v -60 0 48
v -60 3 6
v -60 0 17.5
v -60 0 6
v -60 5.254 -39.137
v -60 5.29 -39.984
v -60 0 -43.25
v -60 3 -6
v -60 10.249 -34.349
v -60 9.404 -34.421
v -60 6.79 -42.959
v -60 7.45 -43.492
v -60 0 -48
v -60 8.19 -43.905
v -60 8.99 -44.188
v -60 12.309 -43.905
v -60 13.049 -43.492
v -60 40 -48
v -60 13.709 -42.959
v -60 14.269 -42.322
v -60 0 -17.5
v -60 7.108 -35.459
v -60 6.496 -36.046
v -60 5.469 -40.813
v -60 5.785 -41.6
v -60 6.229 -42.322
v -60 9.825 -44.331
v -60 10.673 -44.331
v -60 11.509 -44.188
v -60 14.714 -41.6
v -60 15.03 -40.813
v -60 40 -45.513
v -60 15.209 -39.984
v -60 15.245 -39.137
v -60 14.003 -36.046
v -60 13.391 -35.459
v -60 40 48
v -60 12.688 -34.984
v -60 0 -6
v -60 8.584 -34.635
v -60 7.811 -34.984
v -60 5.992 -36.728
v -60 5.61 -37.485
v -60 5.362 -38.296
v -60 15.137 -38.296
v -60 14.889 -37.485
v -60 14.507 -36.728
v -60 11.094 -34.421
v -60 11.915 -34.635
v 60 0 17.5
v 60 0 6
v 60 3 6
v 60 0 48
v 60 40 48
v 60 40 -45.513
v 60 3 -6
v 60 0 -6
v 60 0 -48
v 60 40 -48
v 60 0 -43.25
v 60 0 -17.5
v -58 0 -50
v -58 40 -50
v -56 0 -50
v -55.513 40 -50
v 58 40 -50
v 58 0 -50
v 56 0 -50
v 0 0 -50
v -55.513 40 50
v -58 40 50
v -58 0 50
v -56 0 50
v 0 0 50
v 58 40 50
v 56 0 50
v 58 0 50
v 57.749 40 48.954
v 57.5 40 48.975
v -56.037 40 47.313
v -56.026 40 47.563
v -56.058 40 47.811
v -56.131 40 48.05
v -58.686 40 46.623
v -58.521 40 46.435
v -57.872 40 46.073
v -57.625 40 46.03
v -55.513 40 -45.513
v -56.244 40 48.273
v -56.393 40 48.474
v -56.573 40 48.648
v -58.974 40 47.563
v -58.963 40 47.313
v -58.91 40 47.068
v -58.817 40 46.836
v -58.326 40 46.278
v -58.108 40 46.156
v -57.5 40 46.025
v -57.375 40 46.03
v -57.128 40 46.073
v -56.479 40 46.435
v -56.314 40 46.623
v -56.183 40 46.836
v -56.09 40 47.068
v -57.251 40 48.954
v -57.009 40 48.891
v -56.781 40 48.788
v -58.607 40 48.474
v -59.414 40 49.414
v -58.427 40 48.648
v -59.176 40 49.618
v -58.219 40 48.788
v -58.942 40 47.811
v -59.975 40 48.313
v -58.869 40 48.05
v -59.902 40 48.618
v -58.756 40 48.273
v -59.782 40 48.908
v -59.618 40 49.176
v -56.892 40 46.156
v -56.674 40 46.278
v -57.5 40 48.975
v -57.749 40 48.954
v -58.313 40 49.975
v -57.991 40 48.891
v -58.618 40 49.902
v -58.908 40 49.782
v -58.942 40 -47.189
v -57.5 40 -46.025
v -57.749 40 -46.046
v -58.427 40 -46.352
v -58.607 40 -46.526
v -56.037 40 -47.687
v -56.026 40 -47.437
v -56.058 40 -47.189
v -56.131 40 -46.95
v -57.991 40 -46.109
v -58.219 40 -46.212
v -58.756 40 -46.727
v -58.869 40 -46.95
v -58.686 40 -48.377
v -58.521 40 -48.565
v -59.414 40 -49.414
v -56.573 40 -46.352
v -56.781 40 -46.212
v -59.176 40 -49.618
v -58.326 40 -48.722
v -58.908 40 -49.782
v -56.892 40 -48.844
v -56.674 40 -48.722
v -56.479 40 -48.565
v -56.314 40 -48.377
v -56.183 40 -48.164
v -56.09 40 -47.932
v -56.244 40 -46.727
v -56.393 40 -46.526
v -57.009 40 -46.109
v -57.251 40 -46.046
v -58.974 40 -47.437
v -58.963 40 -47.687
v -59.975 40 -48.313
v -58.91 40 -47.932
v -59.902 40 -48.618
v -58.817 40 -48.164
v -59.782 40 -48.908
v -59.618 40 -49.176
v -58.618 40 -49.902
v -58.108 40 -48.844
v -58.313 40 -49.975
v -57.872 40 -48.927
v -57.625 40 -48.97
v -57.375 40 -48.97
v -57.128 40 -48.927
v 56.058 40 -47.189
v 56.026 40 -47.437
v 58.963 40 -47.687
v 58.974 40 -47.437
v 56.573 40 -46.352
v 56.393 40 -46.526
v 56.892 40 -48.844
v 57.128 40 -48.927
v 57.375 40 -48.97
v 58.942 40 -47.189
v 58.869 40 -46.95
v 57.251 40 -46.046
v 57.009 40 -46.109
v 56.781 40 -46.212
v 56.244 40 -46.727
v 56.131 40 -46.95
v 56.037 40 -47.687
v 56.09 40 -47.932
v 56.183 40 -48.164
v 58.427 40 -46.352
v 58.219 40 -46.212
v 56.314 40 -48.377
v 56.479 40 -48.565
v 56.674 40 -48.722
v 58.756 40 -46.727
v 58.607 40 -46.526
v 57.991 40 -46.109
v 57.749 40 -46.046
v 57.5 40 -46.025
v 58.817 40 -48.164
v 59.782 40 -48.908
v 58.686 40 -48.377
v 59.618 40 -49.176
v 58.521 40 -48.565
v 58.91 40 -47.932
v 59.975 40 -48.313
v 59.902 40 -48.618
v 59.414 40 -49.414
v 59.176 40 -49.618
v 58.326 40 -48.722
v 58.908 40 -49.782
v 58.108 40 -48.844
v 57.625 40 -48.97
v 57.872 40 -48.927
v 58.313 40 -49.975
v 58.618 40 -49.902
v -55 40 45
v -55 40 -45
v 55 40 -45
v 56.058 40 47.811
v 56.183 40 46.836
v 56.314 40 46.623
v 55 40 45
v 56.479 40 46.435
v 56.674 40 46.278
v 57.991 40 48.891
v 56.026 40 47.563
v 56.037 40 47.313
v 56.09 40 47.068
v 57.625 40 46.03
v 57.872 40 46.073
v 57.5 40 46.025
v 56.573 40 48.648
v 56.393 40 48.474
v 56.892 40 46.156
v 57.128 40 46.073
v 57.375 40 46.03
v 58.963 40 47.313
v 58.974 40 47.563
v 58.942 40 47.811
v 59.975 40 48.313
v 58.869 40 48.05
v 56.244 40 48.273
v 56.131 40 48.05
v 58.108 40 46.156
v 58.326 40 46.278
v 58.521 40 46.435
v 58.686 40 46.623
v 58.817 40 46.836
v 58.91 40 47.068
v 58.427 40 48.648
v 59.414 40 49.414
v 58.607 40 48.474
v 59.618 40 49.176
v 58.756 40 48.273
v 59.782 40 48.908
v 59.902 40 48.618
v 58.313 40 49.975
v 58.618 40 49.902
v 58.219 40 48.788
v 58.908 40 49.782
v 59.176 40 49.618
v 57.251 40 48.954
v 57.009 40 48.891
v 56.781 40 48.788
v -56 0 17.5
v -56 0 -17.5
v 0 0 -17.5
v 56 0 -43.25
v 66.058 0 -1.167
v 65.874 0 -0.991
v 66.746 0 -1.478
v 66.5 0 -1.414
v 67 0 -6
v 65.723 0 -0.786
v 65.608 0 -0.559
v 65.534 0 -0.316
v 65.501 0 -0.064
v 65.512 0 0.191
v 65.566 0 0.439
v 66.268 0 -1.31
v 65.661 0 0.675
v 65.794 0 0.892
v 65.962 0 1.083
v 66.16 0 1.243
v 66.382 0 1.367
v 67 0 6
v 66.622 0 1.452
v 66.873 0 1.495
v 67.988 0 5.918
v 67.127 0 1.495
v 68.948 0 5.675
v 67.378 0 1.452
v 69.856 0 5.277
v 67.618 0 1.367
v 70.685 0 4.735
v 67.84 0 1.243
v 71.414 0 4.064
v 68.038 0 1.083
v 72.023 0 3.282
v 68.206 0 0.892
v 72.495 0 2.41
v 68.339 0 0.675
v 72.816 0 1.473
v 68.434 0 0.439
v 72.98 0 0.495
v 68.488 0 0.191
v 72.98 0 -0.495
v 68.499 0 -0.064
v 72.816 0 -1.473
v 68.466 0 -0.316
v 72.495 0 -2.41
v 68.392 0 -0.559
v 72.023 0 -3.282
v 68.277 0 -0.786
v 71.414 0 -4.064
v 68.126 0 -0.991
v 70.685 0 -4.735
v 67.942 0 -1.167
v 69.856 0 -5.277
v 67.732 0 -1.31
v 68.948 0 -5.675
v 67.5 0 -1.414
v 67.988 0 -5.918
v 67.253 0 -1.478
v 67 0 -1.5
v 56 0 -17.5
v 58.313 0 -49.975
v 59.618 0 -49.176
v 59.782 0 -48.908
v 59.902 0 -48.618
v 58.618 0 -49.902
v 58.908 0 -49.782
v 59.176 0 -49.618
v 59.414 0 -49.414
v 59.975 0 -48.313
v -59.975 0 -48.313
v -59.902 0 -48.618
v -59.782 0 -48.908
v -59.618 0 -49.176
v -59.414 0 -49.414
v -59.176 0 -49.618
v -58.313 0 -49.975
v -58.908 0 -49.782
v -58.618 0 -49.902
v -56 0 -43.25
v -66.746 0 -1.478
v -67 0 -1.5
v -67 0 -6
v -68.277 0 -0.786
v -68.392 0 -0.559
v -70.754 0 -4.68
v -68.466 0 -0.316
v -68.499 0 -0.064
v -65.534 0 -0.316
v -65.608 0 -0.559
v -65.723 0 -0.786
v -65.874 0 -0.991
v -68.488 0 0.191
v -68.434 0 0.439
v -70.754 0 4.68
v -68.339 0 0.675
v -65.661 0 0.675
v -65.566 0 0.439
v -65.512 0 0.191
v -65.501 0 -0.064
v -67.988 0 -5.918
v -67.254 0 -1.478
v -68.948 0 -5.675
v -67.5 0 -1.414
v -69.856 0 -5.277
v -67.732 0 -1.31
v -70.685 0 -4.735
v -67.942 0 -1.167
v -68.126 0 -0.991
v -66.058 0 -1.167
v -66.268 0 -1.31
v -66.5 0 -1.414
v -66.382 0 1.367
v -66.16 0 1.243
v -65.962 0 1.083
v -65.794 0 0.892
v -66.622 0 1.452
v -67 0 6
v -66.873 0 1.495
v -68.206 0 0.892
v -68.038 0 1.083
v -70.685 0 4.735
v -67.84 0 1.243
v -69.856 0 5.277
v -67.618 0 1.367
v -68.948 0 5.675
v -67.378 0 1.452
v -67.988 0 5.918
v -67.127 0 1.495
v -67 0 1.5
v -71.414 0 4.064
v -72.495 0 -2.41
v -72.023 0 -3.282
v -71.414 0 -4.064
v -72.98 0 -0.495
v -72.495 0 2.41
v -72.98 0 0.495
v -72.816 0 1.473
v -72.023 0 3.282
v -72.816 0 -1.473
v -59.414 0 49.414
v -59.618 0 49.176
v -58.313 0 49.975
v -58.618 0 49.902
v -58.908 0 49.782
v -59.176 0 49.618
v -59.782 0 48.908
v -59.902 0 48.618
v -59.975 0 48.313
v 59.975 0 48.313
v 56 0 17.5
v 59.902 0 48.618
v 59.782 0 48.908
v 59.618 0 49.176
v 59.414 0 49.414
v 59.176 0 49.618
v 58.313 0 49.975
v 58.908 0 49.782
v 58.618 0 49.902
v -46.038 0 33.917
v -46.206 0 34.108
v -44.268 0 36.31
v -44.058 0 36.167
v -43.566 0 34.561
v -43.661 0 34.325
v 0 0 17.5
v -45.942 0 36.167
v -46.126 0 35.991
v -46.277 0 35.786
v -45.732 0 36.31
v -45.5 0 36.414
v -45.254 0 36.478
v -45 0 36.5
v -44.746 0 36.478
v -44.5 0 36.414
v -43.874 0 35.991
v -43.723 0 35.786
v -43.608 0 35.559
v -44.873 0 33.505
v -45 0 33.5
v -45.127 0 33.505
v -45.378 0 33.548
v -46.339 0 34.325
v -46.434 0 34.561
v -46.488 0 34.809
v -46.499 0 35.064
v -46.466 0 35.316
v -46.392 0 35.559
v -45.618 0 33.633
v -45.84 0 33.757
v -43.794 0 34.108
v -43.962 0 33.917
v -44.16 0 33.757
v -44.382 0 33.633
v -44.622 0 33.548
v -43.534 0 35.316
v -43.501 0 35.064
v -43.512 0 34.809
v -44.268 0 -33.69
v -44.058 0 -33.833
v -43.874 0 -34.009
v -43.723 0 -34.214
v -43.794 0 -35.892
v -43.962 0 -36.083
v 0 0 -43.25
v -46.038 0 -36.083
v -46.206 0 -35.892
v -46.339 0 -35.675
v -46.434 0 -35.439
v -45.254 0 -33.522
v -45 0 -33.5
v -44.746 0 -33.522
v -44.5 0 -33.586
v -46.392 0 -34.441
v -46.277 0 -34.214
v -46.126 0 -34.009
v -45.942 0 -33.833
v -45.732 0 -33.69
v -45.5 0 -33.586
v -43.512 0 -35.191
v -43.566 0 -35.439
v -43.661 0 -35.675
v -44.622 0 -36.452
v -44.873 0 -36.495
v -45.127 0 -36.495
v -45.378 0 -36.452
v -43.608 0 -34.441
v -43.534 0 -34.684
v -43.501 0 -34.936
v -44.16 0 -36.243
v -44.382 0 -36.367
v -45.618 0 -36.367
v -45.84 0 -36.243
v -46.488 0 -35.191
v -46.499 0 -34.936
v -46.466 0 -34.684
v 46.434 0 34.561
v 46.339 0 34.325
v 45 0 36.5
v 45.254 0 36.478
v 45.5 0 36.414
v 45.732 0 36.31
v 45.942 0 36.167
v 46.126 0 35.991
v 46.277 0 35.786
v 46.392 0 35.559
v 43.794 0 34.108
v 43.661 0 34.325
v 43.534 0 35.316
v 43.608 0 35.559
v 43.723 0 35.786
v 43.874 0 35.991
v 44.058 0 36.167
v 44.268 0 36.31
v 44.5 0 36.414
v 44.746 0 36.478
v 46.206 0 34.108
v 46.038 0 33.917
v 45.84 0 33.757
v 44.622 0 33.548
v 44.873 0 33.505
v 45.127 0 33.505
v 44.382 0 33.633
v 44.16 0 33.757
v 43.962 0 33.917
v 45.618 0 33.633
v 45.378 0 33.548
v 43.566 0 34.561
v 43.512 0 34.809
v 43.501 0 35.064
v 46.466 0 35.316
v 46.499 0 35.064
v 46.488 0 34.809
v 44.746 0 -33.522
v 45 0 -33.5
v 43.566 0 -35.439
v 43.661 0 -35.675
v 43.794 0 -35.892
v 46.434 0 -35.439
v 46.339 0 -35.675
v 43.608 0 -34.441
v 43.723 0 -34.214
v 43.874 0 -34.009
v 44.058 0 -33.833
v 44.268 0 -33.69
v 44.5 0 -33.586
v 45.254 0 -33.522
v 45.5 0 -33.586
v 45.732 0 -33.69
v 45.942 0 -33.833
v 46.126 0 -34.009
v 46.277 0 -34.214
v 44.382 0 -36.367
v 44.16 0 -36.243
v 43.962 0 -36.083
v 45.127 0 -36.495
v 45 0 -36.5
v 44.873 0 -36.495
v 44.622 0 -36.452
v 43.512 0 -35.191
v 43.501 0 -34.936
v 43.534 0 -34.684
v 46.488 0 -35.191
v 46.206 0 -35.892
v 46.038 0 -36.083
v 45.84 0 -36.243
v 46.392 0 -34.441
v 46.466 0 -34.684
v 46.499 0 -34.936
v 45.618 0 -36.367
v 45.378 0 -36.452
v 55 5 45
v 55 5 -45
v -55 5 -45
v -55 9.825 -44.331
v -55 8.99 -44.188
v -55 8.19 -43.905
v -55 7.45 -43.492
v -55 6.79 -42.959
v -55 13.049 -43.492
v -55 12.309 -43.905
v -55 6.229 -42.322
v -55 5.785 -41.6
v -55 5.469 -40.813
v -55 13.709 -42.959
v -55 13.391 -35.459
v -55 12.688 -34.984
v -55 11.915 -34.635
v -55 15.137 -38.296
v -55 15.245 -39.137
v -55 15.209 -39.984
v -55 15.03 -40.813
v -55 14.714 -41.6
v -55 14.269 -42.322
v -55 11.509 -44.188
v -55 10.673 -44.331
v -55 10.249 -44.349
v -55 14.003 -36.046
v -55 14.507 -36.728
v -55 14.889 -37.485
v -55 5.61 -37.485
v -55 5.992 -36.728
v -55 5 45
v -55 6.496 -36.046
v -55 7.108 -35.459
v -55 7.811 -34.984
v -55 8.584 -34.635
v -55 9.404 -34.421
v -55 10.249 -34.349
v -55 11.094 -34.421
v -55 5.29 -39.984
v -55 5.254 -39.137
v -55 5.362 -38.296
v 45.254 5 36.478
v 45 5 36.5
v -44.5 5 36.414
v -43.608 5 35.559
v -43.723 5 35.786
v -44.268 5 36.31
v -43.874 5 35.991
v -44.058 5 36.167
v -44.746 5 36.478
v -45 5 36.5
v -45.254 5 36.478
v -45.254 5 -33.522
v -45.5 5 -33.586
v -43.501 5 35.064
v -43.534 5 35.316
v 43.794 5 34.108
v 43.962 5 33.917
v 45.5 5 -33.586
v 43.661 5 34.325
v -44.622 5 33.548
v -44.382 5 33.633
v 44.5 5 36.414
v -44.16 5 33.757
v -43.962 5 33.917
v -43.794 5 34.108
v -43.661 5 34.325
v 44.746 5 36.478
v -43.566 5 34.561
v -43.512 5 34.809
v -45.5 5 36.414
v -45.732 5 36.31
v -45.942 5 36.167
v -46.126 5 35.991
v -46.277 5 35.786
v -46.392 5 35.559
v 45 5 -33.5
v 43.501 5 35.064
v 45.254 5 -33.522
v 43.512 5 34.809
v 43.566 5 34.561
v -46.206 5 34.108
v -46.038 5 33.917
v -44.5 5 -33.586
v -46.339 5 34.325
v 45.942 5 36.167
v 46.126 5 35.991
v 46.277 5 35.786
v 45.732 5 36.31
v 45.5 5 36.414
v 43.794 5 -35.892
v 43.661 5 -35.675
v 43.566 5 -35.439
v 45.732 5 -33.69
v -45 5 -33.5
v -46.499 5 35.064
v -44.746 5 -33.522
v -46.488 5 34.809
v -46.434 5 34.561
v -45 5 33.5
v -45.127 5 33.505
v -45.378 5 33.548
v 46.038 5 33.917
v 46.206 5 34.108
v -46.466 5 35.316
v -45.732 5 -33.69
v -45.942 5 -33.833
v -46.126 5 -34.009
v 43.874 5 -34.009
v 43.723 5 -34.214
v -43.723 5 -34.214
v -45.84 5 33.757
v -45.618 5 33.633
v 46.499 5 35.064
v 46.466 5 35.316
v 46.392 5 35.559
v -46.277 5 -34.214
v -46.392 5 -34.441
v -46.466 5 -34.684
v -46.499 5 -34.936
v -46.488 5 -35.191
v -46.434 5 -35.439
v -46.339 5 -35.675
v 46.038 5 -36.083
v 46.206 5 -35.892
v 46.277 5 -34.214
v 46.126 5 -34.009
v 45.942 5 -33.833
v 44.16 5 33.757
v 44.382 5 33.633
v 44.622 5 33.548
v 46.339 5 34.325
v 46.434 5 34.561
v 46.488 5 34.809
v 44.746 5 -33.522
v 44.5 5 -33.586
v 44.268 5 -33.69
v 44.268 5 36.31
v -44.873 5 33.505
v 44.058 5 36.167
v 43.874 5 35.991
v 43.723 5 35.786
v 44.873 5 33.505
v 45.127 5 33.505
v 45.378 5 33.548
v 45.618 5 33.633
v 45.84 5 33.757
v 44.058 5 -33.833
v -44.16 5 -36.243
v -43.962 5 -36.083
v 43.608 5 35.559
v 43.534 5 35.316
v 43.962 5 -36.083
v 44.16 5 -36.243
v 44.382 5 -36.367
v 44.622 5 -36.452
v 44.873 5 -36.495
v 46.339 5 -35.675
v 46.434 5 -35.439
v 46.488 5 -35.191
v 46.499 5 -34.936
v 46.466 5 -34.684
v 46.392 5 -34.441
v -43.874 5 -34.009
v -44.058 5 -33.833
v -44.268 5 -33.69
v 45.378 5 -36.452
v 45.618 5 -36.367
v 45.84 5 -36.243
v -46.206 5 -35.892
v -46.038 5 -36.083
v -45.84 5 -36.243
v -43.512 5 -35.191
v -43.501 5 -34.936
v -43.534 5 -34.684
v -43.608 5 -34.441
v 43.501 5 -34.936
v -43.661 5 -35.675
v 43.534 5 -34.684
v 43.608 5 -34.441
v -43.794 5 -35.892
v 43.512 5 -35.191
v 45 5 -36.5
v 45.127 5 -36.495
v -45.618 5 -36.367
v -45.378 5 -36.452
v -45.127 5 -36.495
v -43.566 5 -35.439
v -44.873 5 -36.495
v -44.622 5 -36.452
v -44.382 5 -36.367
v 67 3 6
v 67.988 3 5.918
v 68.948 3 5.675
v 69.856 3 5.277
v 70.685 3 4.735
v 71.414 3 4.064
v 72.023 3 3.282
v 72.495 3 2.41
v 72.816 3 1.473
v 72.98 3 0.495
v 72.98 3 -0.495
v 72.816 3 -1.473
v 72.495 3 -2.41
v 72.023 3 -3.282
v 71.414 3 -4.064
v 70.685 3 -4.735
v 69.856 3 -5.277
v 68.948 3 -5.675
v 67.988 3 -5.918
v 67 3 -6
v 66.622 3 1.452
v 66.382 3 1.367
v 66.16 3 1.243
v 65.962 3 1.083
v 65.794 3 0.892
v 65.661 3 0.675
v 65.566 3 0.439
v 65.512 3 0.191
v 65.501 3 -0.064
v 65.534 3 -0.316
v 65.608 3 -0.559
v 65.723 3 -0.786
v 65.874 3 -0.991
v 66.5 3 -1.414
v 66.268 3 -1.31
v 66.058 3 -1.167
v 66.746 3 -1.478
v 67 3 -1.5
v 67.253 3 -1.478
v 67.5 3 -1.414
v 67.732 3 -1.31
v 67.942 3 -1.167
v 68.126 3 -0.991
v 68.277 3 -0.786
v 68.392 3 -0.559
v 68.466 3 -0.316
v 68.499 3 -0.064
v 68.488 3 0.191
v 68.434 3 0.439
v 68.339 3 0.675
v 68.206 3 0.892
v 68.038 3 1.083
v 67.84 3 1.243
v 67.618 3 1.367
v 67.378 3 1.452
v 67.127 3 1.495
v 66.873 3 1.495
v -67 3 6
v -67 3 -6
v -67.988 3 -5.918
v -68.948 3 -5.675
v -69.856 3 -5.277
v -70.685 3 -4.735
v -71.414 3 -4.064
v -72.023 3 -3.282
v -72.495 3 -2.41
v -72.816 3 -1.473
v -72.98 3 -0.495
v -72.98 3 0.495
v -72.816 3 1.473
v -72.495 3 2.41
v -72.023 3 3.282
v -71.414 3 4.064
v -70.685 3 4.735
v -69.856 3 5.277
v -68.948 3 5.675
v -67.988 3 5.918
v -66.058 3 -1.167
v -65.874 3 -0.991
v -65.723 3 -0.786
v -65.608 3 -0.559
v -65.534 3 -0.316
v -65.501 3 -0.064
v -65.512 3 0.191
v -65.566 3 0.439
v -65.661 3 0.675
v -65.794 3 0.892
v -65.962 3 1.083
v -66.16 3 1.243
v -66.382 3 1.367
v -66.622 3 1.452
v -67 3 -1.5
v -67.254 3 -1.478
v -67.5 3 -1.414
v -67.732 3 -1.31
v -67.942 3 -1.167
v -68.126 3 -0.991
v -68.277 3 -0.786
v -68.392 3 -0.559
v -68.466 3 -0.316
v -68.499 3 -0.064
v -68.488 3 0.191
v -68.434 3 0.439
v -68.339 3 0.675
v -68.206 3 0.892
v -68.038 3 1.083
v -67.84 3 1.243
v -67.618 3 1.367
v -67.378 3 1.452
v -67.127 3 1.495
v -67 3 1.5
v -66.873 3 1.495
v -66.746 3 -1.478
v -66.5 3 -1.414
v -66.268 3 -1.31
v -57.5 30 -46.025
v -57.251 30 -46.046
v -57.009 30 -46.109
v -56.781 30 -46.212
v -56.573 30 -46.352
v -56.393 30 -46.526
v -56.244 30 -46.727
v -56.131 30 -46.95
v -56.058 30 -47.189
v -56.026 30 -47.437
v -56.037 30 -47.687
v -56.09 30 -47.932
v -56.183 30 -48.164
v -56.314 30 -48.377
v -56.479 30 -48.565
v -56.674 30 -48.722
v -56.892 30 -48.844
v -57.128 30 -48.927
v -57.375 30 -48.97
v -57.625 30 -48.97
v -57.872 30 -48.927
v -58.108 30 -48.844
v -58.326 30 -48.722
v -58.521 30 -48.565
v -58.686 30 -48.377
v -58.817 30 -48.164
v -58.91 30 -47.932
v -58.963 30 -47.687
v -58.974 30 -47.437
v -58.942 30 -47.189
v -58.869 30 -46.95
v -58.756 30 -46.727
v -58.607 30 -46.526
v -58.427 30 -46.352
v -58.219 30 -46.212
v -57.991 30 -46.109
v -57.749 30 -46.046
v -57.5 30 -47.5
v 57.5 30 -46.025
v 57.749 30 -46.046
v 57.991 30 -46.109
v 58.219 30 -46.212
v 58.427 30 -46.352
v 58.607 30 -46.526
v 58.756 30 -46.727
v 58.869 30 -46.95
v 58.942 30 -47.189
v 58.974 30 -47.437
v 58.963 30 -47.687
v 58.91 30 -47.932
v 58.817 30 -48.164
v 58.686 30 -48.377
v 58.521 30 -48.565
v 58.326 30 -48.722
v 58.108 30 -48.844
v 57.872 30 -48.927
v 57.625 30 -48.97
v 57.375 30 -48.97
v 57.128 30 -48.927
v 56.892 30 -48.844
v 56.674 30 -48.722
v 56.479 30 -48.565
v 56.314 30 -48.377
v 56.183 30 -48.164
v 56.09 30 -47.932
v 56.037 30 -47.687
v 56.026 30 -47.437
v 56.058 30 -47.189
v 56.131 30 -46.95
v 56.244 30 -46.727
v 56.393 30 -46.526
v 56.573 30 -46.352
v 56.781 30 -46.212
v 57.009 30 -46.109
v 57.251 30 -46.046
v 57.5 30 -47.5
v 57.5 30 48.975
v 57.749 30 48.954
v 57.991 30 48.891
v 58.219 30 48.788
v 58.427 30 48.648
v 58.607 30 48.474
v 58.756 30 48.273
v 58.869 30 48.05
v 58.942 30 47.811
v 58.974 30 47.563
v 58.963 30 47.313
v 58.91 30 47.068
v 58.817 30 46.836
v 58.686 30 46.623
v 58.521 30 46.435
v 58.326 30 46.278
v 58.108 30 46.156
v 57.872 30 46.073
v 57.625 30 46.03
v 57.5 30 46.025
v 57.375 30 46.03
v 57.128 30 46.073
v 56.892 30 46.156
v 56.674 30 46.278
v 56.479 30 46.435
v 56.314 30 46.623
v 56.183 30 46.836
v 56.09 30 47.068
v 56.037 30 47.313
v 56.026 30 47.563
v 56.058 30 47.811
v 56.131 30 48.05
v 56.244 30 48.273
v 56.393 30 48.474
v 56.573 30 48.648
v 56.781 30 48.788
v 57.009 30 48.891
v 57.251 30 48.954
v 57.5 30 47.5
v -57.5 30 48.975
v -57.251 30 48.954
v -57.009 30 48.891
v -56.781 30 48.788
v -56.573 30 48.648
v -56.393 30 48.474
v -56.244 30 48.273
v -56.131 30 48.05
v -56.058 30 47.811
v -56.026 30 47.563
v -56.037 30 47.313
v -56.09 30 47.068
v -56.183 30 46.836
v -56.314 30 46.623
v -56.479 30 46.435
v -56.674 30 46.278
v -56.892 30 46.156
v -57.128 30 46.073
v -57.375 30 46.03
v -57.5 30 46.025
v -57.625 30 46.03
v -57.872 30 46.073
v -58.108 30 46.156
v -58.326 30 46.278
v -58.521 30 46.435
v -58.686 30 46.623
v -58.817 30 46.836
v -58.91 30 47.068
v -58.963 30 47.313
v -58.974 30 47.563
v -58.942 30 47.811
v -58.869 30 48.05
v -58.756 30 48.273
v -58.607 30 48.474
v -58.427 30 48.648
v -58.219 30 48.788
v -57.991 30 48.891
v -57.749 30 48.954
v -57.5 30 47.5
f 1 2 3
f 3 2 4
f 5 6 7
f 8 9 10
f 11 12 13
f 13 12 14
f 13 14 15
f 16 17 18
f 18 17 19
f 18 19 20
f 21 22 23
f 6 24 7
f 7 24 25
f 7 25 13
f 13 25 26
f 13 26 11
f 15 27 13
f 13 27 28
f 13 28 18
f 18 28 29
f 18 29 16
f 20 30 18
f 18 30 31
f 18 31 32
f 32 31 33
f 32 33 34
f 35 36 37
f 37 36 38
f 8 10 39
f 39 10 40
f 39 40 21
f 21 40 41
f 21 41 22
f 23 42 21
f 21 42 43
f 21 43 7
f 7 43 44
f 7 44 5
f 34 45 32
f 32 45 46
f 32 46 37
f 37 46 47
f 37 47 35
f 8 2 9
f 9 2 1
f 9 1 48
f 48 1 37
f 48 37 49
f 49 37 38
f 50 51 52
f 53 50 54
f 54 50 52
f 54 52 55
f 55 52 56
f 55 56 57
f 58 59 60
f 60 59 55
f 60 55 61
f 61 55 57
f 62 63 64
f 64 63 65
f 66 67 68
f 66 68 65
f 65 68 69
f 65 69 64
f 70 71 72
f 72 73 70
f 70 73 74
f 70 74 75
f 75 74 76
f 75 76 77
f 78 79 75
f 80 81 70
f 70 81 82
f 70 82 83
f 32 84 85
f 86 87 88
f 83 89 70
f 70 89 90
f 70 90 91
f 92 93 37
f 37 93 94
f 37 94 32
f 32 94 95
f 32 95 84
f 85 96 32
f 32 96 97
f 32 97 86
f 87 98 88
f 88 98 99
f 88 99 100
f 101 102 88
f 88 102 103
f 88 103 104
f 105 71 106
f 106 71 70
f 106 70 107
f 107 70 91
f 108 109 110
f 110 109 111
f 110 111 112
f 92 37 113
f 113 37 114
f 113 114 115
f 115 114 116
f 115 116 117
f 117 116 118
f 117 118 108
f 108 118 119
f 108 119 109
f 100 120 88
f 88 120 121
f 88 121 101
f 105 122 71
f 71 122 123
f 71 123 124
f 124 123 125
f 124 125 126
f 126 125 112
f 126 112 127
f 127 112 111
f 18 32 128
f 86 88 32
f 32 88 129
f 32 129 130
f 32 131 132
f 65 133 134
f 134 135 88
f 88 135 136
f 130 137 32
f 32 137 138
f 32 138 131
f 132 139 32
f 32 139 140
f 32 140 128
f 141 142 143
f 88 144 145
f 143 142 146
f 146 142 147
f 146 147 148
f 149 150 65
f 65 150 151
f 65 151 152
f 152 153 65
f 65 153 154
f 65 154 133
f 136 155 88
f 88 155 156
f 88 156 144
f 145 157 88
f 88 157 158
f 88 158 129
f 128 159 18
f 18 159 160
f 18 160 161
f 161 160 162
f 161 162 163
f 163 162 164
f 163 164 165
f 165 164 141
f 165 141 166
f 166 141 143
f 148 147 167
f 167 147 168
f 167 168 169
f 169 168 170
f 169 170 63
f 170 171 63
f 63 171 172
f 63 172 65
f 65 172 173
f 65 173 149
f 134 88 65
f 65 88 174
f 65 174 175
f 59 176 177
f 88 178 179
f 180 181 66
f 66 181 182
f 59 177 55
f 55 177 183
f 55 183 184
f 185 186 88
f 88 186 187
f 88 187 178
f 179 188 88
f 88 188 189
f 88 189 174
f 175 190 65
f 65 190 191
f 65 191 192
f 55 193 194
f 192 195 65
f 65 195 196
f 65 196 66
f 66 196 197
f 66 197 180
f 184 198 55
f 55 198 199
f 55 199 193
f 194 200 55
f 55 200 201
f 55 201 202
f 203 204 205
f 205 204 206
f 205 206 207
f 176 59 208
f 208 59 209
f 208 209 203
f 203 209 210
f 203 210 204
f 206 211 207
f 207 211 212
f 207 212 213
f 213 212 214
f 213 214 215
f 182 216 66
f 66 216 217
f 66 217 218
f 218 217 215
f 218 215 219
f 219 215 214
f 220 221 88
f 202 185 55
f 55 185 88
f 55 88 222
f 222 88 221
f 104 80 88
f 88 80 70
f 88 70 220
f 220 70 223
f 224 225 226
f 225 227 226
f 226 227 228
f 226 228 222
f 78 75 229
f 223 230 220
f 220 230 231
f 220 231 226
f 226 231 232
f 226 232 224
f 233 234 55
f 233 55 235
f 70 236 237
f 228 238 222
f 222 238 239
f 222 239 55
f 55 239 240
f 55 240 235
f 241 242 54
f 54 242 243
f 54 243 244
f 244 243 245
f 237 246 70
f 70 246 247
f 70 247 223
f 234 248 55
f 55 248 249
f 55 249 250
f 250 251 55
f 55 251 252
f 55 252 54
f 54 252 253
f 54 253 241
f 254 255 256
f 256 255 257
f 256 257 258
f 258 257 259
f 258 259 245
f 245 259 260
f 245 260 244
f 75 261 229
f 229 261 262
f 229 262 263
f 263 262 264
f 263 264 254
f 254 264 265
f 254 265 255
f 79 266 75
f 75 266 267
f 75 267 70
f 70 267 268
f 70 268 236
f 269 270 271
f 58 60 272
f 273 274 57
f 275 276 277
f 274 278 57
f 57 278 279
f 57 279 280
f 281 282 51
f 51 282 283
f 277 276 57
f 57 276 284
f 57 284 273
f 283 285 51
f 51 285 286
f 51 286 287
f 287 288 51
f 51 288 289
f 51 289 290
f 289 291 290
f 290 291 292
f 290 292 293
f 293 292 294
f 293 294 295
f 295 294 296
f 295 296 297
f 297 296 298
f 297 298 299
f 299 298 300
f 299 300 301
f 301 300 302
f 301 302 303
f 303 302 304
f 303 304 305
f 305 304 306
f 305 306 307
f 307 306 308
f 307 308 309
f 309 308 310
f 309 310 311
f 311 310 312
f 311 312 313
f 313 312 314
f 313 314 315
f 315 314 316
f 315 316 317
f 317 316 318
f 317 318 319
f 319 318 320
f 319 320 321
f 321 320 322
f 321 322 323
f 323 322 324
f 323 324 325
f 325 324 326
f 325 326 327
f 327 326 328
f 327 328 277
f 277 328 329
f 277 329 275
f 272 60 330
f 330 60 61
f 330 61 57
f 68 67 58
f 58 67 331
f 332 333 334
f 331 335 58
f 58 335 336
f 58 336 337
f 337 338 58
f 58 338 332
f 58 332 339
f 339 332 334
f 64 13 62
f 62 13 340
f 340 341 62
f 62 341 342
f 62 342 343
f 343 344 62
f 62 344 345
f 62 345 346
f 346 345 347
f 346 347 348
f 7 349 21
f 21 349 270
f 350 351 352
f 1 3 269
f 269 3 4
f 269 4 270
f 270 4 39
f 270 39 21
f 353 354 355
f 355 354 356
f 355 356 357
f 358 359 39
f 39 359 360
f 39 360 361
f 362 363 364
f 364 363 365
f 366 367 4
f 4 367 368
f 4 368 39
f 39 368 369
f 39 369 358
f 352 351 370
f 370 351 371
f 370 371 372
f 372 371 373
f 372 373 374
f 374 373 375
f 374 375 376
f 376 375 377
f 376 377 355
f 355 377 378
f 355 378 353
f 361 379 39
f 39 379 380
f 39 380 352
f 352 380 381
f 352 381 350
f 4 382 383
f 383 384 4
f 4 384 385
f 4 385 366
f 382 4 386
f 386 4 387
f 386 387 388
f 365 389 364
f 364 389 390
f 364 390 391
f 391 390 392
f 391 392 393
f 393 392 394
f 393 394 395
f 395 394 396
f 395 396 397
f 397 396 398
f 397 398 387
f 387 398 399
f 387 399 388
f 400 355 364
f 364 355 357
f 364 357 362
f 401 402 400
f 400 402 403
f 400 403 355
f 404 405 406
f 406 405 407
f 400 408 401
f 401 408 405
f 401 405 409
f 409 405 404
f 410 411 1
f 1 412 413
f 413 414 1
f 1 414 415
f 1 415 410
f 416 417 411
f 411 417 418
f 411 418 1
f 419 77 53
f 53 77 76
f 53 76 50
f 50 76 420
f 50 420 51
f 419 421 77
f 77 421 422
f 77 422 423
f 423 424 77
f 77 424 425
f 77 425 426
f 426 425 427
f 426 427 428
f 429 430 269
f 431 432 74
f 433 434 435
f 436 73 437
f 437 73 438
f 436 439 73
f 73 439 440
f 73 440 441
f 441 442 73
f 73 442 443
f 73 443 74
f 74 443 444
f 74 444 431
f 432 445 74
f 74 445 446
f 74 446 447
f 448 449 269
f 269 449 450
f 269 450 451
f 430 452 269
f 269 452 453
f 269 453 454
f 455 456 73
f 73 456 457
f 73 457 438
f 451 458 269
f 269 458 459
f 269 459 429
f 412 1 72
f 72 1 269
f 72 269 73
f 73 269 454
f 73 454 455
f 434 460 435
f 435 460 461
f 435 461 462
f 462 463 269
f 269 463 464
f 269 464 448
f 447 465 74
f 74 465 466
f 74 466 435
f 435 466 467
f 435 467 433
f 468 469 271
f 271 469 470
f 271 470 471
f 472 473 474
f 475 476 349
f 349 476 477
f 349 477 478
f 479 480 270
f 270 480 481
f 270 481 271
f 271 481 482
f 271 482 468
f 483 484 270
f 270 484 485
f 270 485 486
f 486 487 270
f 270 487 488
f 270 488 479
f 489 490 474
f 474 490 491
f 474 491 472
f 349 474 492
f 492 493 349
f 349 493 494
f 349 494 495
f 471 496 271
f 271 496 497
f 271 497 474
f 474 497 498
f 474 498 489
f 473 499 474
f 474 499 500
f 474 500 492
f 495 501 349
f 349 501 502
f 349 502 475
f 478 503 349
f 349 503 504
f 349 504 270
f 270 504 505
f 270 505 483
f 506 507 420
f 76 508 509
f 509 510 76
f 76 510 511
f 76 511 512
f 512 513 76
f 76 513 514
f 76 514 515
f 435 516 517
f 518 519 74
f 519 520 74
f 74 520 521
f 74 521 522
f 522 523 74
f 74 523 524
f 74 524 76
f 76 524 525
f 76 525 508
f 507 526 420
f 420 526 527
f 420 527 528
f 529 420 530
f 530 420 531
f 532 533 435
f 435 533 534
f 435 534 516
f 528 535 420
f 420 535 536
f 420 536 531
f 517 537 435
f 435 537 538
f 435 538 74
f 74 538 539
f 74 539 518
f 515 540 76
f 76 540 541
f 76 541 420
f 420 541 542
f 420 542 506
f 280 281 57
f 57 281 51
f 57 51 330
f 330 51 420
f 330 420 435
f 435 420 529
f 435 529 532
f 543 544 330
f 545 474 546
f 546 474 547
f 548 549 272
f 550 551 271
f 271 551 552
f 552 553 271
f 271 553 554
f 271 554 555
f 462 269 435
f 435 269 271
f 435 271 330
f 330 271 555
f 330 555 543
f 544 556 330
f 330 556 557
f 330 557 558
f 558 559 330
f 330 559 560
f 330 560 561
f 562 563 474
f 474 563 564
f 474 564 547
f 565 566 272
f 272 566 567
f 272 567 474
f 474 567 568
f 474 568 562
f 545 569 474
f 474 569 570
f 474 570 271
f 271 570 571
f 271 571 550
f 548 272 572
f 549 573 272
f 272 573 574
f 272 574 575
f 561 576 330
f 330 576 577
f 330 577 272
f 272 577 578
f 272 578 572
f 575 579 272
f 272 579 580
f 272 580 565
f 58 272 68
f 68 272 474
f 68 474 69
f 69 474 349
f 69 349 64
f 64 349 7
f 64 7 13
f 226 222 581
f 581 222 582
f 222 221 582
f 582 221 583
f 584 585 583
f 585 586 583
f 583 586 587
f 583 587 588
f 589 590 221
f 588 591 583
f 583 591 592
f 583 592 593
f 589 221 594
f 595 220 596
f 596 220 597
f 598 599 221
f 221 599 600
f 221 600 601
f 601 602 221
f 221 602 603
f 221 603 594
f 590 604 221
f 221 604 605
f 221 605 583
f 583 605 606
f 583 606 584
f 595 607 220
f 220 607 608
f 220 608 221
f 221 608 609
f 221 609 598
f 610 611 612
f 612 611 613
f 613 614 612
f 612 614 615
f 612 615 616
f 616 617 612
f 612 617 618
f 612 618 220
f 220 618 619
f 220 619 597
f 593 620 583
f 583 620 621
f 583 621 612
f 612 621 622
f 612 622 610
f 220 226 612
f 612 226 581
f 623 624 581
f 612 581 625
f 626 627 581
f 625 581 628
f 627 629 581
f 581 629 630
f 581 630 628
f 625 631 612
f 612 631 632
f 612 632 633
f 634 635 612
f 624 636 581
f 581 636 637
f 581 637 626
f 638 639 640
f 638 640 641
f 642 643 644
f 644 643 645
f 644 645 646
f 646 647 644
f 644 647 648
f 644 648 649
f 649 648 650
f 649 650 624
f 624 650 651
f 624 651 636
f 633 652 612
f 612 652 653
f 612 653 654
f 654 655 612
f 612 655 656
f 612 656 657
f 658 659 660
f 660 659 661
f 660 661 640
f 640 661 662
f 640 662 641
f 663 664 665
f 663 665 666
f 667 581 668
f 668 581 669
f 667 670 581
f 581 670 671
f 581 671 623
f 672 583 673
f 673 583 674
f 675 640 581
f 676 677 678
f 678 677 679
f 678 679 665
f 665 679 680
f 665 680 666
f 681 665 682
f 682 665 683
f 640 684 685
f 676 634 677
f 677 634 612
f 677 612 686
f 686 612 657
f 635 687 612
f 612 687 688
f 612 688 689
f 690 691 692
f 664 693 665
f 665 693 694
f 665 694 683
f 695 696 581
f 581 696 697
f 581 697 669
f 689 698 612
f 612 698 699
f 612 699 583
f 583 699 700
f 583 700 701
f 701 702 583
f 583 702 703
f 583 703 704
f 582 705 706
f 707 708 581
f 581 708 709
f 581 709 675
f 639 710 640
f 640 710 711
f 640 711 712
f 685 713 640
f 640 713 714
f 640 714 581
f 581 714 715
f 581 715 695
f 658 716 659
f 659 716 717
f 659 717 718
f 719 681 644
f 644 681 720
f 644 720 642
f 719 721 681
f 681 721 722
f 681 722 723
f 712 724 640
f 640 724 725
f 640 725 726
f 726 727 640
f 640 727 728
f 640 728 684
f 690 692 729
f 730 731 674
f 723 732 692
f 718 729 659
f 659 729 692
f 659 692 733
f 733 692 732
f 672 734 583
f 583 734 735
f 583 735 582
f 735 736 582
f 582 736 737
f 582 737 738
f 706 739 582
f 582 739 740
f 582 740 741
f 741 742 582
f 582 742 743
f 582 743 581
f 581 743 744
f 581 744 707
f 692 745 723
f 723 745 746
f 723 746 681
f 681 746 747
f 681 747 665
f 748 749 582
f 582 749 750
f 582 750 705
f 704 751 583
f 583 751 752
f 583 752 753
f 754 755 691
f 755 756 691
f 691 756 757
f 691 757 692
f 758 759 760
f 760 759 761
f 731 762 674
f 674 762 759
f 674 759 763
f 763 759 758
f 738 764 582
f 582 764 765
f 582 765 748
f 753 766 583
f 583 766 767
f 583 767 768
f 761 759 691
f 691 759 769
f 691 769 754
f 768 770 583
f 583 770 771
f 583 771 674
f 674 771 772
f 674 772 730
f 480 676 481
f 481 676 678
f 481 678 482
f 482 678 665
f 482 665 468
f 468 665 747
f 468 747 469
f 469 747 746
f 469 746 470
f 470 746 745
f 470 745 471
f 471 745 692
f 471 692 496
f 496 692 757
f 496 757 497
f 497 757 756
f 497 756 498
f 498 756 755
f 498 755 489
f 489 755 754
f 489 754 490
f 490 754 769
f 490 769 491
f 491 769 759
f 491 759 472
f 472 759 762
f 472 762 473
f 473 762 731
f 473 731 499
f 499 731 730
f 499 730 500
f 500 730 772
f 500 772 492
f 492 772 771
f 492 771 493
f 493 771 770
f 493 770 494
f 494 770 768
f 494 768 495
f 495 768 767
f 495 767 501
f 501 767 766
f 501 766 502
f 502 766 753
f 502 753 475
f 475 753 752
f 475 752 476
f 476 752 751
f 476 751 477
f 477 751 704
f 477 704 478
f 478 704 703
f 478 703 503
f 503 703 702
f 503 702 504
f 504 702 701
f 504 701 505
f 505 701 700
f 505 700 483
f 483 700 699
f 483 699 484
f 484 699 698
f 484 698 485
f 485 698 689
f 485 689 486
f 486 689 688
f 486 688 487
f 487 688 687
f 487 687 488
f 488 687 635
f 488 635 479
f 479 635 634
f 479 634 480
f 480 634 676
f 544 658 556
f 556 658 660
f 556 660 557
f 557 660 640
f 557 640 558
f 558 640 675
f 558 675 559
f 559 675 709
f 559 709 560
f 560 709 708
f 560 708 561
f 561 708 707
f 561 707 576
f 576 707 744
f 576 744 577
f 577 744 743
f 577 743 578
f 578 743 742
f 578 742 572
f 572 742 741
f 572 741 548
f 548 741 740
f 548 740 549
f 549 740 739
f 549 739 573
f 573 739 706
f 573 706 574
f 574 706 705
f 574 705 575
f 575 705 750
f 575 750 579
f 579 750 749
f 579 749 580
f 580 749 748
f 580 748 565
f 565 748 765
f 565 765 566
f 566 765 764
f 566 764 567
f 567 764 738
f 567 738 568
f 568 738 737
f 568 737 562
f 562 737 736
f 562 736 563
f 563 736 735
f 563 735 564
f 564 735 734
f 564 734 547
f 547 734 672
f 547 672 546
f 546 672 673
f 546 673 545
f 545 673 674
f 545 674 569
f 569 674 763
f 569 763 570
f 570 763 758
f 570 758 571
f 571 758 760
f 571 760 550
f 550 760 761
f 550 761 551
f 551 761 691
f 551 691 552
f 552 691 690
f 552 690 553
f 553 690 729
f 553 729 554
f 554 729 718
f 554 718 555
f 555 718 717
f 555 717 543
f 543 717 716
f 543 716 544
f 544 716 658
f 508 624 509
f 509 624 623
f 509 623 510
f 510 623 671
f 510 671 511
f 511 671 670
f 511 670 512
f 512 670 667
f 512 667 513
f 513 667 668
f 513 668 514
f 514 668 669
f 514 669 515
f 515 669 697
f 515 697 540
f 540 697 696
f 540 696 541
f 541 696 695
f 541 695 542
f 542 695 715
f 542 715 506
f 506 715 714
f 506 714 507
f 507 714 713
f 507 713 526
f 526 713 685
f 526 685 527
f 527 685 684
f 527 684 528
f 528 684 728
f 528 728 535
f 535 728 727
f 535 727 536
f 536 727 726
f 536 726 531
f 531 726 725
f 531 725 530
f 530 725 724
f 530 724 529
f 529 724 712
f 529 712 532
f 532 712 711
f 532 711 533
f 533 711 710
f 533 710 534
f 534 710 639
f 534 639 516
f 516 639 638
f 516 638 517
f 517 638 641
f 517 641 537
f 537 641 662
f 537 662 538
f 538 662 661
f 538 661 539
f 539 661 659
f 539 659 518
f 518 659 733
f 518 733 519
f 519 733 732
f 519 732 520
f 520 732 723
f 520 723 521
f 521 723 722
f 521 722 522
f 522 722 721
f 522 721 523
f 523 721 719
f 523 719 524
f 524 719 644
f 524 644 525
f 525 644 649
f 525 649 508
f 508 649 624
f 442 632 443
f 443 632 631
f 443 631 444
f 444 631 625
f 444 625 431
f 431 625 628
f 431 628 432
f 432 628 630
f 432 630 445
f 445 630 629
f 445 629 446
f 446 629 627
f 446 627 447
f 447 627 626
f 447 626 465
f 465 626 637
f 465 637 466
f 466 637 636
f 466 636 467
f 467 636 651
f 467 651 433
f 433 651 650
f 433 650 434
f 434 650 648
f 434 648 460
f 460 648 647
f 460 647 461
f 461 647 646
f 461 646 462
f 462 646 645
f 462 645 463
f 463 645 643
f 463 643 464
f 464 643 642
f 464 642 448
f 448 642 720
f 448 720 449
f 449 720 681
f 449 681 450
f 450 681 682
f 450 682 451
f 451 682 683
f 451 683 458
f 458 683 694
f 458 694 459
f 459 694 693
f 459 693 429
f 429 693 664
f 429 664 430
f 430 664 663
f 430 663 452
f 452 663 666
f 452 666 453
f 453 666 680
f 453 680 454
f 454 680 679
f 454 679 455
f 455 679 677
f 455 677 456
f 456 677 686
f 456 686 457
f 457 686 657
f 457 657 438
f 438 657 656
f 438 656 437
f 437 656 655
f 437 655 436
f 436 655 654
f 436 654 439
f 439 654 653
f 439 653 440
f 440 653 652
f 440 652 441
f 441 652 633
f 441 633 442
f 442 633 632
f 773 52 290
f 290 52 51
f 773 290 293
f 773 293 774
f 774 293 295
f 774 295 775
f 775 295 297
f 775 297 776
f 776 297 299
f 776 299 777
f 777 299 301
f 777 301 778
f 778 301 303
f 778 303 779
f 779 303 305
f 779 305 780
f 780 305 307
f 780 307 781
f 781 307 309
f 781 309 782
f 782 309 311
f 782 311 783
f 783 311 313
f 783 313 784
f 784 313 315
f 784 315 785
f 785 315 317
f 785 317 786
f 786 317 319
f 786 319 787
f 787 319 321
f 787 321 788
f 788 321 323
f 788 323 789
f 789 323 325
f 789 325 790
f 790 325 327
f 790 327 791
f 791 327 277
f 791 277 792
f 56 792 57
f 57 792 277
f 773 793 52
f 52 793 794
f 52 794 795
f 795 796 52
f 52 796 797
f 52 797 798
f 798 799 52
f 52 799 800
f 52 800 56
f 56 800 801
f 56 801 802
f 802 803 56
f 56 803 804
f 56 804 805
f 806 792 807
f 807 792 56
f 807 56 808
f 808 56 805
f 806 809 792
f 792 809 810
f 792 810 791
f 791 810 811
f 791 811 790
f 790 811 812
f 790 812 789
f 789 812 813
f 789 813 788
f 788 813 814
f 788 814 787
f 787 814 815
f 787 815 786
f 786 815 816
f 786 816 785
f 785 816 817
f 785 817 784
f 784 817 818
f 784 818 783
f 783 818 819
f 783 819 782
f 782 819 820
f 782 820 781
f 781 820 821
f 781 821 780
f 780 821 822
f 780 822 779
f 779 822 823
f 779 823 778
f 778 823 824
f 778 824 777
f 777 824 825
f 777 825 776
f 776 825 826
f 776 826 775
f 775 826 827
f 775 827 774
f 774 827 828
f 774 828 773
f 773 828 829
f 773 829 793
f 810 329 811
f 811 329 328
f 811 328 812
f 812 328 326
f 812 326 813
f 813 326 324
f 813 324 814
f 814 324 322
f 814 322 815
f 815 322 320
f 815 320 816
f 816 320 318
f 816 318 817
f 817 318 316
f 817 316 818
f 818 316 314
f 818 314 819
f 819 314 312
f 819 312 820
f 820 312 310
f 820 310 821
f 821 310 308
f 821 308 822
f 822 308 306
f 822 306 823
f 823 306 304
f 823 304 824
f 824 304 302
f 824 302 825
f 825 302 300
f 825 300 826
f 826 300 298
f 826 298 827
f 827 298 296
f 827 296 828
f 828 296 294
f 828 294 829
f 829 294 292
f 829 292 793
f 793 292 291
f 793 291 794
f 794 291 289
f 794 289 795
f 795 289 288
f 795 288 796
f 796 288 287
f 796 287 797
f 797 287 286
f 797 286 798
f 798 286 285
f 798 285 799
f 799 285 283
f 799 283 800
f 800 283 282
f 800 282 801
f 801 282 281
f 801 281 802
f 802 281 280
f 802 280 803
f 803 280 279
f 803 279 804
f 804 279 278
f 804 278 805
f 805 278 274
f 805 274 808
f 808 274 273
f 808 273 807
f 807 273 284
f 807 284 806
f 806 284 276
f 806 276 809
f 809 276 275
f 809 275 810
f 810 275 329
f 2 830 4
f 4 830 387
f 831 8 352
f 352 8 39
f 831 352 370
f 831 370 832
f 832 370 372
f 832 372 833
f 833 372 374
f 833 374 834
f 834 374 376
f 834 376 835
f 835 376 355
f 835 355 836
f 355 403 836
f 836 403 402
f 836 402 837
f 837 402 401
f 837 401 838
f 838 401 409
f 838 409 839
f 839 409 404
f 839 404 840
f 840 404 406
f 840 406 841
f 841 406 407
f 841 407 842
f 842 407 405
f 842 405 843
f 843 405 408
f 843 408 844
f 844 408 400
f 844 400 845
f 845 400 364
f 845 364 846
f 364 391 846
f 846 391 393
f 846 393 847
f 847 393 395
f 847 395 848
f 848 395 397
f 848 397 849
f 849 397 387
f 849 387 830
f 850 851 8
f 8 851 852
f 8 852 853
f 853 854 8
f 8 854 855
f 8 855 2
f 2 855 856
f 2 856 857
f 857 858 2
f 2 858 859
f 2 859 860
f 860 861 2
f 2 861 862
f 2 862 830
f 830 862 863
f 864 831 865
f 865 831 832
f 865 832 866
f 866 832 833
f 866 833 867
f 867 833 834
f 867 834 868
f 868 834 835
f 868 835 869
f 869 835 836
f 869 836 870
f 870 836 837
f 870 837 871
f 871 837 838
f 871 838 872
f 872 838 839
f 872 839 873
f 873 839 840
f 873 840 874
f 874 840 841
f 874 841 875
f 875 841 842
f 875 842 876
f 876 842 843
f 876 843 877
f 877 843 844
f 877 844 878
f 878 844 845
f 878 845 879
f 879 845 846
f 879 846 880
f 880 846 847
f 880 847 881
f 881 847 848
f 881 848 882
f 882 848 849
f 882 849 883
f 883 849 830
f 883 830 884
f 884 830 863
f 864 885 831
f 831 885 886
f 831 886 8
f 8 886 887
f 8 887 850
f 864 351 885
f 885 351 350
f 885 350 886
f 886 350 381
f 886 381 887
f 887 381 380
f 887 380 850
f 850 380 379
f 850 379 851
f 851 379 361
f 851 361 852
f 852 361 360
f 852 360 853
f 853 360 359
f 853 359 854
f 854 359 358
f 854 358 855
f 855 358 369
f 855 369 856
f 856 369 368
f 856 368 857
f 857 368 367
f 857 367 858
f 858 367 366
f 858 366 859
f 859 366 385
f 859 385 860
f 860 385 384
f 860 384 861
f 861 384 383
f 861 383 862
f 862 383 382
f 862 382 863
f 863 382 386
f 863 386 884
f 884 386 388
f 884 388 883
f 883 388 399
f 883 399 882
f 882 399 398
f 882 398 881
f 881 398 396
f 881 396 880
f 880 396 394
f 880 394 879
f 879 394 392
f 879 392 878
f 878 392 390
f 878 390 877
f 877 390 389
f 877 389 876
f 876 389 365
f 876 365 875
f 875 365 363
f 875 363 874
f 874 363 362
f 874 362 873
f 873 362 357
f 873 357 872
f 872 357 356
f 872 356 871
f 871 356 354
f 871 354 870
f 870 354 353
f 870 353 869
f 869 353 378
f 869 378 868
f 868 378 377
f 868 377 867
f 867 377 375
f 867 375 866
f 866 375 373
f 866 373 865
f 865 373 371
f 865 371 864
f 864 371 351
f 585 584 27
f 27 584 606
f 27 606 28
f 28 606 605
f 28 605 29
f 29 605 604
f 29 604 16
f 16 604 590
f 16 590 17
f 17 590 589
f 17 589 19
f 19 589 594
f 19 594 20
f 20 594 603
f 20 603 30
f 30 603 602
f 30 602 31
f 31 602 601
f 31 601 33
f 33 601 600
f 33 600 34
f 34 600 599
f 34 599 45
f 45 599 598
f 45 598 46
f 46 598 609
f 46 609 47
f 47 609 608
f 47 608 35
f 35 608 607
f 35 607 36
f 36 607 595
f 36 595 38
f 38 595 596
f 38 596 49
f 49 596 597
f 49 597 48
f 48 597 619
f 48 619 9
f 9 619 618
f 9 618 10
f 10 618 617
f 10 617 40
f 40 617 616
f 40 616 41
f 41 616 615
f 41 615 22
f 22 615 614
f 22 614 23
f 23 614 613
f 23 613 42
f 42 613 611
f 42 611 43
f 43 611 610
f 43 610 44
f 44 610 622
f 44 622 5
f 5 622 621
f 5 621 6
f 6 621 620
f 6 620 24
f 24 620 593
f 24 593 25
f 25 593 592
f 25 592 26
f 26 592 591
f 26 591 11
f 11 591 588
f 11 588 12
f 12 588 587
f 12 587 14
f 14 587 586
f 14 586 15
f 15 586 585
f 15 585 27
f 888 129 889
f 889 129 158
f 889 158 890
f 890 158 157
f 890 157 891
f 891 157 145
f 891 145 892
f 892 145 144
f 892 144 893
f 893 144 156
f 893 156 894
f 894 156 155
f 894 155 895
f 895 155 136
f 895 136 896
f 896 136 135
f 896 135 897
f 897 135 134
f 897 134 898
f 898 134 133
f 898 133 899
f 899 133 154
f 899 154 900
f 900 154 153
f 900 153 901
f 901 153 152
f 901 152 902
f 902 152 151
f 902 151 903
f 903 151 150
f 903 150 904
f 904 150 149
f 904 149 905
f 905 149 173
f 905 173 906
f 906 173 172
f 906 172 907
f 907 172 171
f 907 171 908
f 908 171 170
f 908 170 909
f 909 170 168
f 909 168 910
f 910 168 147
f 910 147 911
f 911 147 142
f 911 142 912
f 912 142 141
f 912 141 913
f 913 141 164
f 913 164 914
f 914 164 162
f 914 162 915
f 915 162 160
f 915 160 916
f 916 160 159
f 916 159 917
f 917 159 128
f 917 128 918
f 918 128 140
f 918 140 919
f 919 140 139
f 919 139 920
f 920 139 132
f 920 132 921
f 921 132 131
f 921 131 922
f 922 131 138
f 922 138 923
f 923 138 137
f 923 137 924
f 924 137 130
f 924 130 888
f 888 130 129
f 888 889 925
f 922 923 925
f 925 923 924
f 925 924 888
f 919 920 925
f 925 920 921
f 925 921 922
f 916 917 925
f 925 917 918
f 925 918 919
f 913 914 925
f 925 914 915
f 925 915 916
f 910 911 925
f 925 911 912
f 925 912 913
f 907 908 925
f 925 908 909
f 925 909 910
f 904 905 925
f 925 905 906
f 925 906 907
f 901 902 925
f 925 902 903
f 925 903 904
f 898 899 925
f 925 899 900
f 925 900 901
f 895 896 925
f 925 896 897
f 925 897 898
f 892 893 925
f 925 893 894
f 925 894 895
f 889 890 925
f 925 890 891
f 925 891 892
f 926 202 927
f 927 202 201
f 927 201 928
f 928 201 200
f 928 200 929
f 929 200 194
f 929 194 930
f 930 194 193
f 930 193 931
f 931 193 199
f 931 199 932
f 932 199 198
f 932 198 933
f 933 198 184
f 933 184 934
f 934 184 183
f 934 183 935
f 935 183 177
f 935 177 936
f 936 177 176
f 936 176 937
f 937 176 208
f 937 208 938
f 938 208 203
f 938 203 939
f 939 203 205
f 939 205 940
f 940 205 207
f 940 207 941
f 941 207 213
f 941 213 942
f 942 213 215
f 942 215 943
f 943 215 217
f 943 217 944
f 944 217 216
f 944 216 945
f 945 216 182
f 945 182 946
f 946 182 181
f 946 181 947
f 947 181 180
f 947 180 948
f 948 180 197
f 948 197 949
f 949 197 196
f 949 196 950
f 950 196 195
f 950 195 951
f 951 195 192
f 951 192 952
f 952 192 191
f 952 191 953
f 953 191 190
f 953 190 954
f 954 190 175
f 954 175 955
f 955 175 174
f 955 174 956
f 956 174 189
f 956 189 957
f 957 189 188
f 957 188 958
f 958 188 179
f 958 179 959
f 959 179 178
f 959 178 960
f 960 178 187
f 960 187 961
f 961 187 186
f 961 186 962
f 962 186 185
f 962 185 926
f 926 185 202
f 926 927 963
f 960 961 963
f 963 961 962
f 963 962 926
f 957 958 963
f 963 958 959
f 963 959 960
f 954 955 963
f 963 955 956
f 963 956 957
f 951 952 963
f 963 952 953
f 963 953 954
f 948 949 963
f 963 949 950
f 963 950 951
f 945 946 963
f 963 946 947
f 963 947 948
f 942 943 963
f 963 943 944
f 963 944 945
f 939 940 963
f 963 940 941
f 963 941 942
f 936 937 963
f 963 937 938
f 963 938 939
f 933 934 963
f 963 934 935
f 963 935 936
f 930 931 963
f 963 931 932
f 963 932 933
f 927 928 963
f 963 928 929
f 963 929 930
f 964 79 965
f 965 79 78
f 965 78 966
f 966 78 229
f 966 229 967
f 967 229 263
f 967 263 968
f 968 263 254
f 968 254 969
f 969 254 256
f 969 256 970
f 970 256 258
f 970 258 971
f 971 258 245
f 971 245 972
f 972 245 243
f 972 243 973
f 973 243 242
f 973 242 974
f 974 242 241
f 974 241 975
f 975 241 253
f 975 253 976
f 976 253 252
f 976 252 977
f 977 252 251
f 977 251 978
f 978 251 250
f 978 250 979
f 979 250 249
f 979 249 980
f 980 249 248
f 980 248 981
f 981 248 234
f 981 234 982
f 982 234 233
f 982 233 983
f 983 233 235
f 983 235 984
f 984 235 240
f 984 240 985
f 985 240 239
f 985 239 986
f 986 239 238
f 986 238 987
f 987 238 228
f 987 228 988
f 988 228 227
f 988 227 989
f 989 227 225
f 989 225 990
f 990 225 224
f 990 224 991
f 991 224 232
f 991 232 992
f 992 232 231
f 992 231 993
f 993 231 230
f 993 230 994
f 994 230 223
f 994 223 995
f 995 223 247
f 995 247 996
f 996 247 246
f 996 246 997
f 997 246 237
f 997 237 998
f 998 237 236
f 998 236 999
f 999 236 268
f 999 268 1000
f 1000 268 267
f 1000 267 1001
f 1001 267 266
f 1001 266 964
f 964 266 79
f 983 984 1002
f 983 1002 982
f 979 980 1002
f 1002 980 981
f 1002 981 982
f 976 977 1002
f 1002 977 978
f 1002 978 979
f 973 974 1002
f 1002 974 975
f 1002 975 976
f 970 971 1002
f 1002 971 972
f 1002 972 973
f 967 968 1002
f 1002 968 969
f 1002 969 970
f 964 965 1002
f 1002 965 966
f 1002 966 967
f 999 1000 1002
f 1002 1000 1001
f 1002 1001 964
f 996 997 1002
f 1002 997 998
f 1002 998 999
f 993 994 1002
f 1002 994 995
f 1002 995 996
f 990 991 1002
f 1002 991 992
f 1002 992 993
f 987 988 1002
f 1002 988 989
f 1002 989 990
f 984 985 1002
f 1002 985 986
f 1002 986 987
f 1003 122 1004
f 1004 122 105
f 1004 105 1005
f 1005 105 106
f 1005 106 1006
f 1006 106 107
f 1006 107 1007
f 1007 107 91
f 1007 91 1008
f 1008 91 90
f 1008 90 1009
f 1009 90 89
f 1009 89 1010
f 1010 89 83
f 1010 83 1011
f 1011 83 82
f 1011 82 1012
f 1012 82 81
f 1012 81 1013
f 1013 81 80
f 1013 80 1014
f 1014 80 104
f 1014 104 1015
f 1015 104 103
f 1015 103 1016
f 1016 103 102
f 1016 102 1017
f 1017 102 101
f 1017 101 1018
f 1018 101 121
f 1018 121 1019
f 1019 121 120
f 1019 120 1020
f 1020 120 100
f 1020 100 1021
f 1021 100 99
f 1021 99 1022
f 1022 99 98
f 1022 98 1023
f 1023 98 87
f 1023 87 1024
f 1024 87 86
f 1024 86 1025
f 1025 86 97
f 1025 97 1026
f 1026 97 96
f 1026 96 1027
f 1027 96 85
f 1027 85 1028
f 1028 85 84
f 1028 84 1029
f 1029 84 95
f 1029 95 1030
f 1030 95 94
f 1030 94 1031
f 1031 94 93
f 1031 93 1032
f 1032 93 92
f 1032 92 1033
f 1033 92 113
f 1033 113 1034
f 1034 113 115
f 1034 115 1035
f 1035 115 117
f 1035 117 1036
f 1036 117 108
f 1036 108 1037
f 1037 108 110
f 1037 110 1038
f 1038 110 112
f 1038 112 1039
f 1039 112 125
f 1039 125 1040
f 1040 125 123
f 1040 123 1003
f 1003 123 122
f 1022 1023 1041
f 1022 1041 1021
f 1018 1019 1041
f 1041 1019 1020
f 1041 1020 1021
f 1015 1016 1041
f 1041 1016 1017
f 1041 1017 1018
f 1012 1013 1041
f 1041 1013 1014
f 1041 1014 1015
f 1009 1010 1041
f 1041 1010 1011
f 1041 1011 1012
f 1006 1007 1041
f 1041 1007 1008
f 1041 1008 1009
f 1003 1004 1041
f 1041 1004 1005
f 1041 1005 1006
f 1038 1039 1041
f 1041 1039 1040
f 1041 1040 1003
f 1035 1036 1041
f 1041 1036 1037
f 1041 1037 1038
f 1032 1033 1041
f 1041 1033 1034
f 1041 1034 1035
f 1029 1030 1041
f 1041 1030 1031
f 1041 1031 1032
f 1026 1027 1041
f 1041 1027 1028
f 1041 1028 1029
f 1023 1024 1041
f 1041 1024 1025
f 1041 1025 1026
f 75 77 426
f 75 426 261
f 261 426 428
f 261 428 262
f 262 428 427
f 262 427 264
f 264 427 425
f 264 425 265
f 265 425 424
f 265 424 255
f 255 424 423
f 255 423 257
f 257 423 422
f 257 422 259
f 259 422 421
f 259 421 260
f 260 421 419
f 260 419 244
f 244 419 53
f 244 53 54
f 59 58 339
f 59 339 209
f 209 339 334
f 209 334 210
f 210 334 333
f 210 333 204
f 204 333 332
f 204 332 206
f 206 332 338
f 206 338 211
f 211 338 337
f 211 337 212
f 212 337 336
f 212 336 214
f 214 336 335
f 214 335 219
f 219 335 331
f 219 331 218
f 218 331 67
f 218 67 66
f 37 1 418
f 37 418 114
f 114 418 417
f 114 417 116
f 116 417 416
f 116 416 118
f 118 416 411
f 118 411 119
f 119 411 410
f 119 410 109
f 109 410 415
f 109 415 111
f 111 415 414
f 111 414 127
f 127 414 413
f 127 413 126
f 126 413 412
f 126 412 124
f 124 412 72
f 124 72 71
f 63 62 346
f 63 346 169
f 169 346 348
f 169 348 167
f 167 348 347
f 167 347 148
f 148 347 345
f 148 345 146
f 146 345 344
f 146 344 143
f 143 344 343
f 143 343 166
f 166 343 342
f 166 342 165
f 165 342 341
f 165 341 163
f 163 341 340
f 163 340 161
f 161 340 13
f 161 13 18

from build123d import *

# Parameters (mm, degrees)
SKETCH1_W               = 120
SKETCH1_H               = 100
BOSS_EXTRUDE1_DEPTH     = 40
SHELL1_T                = -5
SKETCH2_R               = 1.5
CUT_EXTRUDE1_DEPTH      = 86.586213843
SKETCH4_R               = 1.5
BOSS_EXTRUDE2_DEPTH     = 3
SKETCH7_R               = 5
CUT_EXTRUDE2_DEPTH      = 5
SKETCH8_R               = 1.475
CUT_EXTRUDE3_DEPTH      = 10
MIRROR2_COPY_1_SKETCH_R = 1.475
MIRROR2_COPY_1_DEPTH    = 10
FILLET1_R               = 2


with BuildPart() as part:
    # Sketch1 → Boss-Extrude1 (new body)
    with BuildSketch(Plane(origin=(0, 0, 0), x_dir=(1, 0, 0), z_dir=(0, 1, 0))):
        Rectangle(SKETCH1_W, SKETCH1_H)
    extrude(amount=BOSS_EXTRUDE1_DEPTH)

    # Shell1
    shell1_openings = [part.faces().sort_by_distance(p)[0] for p in [
        (0, 40, 0),
    ]]
    offset(amount=SHELL1_T, openings=shell1_openings, kind=Kind.INTERSECTION)

    # Sketch2 → Cut-Extrude1 (cut, through all)
    with BuildSketch(Plane(origin=(0, 5, 0), x_dir=(1, 0, 0), z_dir=(0, 1, 0))):
        with Locations(Location((-45, 35, 0), (0, 0, 270))):
            Circle(SKETCH2_R)
        with Locations(Location((45, 35, 0), (0, 0, 90))):
            Circle(SKETCH2_R)
        with Locations(Location((45, -35, 0), (0, 0, 270))):
            Circle(SKETCH2_R)
        with Locations(Location((-45, -35, 0), (0, 0, 90))):
            Circle(SKETCH2_R)
    extrude(amount=-CUT_EXTRUDE1_DEPTH, mode=Mode.SUBTRACT)

    # Sketch4 → Boss-Extrude2 (add)
    # profile 1 of 2: a face of its own
    with BuildSketch(Plane.XZ):
        with BuildLine():
            Line((60, 6), (67, 6))
            ThreePointArc((67, 6), (73, 0), (67, -6))
            Line((67, -6), (60, -6))
            Line((60, -6), (60, 6))
        make_face()
        with Locations(Location((67, 0, 0), (0, 0, 270))):
            Circle(SKETCH4_R, mode=Mode.SUBTRACT)
    # profile 2 of 2: a face of its own
    with BuildSketch(Plane.XZ):
        with BuildLine():
            Line((-60, 6), (-60, -6))
            Line((-60, -6), (-67, -6))
            ThreePointArc((-67, -6), (-73, 0), (-67, 6))
            Line((-67, 6), (-60, 6))
        make_face()
        with Locations(Location((-67, 0, 0), (0, 0, 90))):
            Circle(SKETCH4_R, mode=Mode.SUBTRACT)
    extrude(amount=-BOSS_EXTRUDE2_DEPTH)

    # Sketch7 → Cut-Extrude2 (cut)
    with BuildSketch(Plane.ZY.offset(60)):
        with Locations((-39.349087079, 10.249467904)):
            Circle(SKETCH7_R)
    extrude(amount=-CUT_EXTRUDE2_DEPTH, mode=Mode.SUBTRACT)

    # Sketch8 → Cut-Extrude3 (cut)
    with BuildSketch(Plane(origin=(0, 40, 0), x_dir=(1, 0, 0), z_dir=(0, 1, 0))):
        with Locations(Location((-57.5, 47.5, 0), (0, 0, 270))):
            Circle(SKETCH8_R)
    cut_extrude3 = extrude(amount=-CUT_EXTRUDE3_DEPTH, mode=Mode.SUBTRACT)

    # Mirror1: Cut-Extrude3 across plane
    add(cut_extrude3.mirror(Plane(origin=(0, 0, 0), x_dir=(0, 0, 1), z_dir=(1, 0, 0))), mode=Mode.SUBTRACT)

    # Mirror2: Cut-Extrude3 across plane
    add(cut_extrude3.mirror(Plane.XY), mode=Mode.SUBTRACT)

    # Mirror2 copy 1 sketch → Mirror2 copy 1 (cut)
    with BuildSketch(Plane(origin=(0, 40, 0), x_dir=(-1, 0, 0), z_dir=(0, 1, 0))):
        with Locations(Location((-57.5, 47.5, 0), (0, 0, 270))):
            Circle(MIRROR2_COPY_1_SKETCH_R)
    extrude(amount=-MIRROR2_COPY_1_DEPTH, mode=Mode.SUBTRACT)

    # Fillet1
    fillet1_edges = [part.edges().sort_by_distance(p)[0] for p in [
        (60, 20, 50),
        (-60, 20, 50),
        (-60, 20, -50),
        (60, 20, -50),
    ]]
    fillet(fillet1_edges, radius=FILLET1_R)


solid = part.part
